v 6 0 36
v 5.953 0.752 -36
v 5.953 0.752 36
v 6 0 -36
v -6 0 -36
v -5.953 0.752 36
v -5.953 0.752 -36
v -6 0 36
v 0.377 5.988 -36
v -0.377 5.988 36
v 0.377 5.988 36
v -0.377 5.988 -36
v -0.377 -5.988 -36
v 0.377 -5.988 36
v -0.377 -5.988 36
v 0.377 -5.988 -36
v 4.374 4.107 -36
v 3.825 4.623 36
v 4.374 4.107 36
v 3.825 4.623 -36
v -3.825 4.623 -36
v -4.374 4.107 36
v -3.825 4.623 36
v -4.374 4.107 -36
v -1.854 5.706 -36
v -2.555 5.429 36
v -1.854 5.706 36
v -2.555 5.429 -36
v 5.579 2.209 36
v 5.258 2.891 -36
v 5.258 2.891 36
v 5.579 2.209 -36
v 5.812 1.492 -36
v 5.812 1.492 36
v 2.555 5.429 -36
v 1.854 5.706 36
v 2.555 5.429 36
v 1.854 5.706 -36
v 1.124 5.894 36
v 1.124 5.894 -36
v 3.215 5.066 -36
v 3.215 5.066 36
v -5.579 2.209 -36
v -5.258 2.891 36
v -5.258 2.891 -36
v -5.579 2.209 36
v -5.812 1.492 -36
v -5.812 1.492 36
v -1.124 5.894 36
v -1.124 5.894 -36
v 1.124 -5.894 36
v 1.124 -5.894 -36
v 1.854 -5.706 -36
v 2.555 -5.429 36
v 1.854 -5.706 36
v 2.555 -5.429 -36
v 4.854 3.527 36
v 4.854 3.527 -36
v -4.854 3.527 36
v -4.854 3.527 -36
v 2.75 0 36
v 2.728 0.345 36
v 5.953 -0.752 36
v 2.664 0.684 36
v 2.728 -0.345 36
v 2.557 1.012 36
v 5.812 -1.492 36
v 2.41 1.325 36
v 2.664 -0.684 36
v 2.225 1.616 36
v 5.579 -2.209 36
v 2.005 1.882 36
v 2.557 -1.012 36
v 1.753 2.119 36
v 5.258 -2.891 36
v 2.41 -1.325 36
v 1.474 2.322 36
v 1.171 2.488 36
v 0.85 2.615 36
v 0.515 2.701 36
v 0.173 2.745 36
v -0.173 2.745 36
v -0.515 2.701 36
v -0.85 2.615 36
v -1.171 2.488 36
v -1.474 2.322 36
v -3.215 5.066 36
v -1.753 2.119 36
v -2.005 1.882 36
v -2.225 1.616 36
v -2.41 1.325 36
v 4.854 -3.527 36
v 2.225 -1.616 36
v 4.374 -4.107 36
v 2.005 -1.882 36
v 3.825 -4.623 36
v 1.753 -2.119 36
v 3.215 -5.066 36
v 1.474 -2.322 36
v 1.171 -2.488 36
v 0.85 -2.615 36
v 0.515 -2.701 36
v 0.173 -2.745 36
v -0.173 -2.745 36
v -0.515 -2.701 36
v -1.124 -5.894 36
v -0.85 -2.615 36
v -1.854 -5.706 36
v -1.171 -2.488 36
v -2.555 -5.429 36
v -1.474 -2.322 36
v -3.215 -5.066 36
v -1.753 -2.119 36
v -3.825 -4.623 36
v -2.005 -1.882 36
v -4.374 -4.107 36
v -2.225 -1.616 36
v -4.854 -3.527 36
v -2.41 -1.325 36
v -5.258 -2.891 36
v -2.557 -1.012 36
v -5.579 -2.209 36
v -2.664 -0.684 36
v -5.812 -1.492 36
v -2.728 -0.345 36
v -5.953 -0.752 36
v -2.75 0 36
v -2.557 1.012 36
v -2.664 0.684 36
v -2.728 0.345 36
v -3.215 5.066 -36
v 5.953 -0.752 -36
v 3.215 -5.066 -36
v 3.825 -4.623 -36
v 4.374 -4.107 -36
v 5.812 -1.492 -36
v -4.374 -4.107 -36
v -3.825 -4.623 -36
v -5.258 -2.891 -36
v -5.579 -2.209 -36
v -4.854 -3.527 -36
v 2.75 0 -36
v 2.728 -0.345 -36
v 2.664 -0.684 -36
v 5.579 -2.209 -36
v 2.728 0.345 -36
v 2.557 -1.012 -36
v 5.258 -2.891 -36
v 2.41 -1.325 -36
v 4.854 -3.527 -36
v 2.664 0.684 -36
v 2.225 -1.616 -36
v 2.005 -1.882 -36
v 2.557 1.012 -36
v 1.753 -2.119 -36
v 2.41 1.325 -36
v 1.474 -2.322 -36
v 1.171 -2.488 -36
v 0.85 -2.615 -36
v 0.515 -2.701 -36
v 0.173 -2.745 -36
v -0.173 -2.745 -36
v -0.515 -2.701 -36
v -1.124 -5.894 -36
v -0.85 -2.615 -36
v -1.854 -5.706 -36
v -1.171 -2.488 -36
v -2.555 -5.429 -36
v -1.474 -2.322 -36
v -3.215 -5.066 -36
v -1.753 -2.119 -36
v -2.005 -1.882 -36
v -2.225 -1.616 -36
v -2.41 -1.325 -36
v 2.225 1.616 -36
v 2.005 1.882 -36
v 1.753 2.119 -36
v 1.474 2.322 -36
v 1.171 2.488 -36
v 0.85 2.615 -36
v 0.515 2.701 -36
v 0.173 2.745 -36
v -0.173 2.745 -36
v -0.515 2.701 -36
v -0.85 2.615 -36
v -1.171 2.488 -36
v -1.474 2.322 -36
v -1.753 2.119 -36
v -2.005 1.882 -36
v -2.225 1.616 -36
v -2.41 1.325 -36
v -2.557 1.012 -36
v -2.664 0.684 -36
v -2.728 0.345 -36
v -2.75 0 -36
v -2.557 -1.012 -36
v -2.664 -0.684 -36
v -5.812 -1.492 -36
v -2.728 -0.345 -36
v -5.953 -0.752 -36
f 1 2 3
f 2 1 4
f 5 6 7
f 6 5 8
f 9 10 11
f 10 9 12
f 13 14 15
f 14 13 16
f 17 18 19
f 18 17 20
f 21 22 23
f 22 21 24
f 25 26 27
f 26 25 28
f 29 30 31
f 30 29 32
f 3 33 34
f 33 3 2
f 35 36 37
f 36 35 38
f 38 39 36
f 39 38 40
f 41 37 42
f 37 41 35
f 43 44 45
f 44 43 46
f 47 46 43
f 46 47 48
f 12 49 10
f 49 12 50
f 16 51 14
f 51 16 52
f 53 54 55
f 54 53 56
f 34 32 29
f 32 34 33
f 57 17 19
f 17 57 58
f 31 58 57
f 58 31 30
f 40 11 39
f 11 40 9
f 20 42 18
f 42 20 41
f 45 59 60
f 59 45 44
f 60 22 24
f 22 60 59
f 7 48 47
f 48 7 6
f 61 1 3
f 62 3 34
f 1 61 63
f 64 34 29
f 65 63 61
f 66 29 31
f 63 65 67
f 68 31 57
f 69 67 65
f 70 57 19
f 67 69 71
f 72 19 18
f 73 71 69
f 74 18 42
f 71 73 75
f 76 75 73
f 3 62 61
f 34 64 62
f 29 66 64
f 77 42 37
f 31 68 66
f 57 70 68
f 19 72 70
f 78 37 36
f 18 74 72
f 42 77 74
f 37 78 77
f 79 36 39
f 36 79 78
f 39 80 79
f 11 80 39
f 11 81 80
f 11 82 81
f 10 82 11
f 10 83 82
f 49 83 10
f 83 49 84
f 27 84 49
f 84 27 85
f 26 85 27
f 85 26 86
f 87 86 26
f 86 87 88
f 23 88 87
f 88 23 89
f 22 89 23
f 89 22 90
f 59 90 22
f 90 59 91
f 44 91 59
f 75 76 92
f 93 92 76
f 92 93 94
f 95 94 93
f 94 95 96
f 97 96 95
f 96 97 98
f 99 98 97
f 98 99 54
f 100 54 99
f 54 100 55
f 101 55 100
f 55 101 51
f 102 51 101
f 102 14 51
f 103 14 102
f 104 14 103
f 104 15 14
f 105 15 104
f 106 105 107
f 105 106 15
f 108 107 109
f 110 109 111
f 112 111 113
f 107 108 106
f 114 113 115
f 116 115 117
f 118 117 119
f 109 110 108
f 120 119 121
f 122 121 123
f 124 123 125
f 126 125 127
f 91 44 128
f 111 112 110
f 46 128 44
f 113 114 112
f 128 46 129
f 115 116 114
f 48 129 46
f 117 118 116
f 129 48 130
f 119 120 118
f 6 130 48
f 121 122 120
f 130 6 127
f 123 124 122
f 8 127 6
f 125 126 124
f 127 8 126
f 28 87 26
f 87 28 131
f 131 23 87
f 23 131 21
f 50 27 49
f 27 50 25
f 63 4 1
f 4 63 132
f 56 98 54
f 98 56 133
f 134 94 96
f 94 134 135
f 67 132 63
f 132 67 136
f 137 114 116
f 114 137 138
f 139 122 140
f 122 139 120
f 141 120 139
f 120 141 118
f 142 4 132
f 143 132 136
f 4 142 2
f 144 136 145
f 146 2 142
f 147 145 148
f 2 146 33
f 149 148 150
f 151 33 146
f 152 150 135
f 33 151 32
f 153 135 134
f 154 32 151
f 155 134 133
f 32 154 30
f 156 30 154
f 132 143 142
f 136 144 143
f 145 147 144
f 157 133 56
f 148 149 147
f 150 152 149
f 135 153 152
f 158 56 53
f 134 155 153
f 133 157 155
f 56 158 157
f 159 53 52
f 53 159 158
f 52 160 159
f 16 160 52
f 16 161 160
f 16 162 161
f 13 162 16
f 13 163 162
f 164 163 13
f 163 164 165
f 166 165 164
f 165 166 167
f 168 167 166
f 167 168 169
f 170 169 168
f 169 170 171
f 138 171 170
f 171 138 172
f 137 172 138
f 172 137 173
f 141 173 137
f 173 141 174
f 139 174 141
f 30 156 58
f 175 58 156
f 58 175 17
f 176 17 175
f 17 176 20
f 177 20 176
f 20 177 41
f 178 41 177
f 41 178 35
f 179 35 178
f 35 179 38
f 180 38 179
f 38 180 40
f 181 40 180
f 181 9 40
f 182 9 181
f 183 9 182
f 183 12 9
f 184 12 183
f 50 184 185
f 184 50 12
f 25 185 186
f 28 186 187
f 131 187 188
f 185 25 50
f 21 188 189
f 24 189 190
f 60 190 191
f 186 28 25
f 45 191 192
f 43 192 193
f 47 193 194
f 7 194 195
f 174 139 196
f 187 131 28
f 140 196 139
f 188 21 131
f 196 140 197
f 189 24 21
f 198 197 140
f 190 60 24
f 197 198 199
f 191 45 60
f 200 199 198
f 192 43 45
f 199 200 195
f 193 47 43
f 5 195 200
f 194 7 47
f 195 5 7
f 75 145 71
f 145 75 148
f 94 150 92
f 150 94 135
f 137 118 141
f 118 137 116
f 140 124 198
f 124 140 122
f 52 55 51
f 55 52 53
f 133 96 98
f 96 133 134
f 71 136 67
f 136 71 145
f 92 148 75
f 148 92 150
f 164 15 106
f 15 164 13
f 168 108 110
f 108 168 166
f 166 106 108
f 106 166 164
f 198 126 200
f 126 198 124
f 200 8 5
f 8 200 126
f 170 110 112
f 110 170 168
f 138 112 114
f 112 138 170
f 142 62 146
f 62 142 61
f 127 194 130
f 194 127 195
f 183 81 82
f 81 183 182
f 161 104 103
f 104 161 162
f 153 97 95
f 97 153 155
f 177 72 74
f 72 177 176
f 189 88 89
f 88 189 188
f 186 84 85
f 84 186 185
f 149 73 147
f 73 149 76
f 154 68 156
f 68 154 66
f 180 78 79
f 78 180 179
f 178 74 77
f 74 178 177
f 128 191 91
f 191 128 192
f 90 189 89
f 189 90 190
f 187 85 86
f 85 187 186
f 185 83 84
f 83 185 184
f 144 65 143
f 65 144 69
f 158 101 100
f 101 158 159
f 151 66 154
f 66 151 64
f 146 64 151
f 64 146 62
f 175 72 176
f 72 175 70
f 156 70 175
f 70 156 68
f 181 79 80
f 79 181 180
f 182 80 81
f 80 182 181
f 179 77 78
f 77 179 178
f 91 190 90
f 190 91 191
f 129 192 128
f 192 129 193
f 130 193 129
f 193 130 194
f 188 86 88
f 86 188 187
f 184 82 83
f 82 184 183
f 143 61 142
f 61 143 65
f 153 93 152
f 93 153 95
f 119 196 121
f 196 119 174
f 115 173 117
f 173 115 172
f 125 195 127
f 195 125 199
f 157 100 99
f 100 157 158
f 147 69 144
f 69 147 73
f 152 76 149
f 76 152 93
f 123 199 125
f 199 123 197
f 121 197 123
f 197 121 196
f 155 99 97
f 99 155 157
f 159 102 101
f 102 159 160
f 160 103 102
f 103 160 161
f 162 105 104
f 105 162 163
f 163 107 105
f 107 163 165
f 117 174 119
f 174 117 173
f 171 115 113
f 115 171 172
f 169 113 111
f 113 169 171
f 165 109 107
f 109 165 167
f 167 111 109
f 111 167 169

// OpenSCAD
$fn = 50;


difference() {
	union() {
		translate(v = [0, 0, -36.0000000000]) {
			cylinder(h = 72, r = 6.0000000000);
		}
	}
	union() {
		translate(v = [0, 0, -100.0000000000]) {
			cylinder(h = 200, r = 2.7500000000);
		}
	}
}
